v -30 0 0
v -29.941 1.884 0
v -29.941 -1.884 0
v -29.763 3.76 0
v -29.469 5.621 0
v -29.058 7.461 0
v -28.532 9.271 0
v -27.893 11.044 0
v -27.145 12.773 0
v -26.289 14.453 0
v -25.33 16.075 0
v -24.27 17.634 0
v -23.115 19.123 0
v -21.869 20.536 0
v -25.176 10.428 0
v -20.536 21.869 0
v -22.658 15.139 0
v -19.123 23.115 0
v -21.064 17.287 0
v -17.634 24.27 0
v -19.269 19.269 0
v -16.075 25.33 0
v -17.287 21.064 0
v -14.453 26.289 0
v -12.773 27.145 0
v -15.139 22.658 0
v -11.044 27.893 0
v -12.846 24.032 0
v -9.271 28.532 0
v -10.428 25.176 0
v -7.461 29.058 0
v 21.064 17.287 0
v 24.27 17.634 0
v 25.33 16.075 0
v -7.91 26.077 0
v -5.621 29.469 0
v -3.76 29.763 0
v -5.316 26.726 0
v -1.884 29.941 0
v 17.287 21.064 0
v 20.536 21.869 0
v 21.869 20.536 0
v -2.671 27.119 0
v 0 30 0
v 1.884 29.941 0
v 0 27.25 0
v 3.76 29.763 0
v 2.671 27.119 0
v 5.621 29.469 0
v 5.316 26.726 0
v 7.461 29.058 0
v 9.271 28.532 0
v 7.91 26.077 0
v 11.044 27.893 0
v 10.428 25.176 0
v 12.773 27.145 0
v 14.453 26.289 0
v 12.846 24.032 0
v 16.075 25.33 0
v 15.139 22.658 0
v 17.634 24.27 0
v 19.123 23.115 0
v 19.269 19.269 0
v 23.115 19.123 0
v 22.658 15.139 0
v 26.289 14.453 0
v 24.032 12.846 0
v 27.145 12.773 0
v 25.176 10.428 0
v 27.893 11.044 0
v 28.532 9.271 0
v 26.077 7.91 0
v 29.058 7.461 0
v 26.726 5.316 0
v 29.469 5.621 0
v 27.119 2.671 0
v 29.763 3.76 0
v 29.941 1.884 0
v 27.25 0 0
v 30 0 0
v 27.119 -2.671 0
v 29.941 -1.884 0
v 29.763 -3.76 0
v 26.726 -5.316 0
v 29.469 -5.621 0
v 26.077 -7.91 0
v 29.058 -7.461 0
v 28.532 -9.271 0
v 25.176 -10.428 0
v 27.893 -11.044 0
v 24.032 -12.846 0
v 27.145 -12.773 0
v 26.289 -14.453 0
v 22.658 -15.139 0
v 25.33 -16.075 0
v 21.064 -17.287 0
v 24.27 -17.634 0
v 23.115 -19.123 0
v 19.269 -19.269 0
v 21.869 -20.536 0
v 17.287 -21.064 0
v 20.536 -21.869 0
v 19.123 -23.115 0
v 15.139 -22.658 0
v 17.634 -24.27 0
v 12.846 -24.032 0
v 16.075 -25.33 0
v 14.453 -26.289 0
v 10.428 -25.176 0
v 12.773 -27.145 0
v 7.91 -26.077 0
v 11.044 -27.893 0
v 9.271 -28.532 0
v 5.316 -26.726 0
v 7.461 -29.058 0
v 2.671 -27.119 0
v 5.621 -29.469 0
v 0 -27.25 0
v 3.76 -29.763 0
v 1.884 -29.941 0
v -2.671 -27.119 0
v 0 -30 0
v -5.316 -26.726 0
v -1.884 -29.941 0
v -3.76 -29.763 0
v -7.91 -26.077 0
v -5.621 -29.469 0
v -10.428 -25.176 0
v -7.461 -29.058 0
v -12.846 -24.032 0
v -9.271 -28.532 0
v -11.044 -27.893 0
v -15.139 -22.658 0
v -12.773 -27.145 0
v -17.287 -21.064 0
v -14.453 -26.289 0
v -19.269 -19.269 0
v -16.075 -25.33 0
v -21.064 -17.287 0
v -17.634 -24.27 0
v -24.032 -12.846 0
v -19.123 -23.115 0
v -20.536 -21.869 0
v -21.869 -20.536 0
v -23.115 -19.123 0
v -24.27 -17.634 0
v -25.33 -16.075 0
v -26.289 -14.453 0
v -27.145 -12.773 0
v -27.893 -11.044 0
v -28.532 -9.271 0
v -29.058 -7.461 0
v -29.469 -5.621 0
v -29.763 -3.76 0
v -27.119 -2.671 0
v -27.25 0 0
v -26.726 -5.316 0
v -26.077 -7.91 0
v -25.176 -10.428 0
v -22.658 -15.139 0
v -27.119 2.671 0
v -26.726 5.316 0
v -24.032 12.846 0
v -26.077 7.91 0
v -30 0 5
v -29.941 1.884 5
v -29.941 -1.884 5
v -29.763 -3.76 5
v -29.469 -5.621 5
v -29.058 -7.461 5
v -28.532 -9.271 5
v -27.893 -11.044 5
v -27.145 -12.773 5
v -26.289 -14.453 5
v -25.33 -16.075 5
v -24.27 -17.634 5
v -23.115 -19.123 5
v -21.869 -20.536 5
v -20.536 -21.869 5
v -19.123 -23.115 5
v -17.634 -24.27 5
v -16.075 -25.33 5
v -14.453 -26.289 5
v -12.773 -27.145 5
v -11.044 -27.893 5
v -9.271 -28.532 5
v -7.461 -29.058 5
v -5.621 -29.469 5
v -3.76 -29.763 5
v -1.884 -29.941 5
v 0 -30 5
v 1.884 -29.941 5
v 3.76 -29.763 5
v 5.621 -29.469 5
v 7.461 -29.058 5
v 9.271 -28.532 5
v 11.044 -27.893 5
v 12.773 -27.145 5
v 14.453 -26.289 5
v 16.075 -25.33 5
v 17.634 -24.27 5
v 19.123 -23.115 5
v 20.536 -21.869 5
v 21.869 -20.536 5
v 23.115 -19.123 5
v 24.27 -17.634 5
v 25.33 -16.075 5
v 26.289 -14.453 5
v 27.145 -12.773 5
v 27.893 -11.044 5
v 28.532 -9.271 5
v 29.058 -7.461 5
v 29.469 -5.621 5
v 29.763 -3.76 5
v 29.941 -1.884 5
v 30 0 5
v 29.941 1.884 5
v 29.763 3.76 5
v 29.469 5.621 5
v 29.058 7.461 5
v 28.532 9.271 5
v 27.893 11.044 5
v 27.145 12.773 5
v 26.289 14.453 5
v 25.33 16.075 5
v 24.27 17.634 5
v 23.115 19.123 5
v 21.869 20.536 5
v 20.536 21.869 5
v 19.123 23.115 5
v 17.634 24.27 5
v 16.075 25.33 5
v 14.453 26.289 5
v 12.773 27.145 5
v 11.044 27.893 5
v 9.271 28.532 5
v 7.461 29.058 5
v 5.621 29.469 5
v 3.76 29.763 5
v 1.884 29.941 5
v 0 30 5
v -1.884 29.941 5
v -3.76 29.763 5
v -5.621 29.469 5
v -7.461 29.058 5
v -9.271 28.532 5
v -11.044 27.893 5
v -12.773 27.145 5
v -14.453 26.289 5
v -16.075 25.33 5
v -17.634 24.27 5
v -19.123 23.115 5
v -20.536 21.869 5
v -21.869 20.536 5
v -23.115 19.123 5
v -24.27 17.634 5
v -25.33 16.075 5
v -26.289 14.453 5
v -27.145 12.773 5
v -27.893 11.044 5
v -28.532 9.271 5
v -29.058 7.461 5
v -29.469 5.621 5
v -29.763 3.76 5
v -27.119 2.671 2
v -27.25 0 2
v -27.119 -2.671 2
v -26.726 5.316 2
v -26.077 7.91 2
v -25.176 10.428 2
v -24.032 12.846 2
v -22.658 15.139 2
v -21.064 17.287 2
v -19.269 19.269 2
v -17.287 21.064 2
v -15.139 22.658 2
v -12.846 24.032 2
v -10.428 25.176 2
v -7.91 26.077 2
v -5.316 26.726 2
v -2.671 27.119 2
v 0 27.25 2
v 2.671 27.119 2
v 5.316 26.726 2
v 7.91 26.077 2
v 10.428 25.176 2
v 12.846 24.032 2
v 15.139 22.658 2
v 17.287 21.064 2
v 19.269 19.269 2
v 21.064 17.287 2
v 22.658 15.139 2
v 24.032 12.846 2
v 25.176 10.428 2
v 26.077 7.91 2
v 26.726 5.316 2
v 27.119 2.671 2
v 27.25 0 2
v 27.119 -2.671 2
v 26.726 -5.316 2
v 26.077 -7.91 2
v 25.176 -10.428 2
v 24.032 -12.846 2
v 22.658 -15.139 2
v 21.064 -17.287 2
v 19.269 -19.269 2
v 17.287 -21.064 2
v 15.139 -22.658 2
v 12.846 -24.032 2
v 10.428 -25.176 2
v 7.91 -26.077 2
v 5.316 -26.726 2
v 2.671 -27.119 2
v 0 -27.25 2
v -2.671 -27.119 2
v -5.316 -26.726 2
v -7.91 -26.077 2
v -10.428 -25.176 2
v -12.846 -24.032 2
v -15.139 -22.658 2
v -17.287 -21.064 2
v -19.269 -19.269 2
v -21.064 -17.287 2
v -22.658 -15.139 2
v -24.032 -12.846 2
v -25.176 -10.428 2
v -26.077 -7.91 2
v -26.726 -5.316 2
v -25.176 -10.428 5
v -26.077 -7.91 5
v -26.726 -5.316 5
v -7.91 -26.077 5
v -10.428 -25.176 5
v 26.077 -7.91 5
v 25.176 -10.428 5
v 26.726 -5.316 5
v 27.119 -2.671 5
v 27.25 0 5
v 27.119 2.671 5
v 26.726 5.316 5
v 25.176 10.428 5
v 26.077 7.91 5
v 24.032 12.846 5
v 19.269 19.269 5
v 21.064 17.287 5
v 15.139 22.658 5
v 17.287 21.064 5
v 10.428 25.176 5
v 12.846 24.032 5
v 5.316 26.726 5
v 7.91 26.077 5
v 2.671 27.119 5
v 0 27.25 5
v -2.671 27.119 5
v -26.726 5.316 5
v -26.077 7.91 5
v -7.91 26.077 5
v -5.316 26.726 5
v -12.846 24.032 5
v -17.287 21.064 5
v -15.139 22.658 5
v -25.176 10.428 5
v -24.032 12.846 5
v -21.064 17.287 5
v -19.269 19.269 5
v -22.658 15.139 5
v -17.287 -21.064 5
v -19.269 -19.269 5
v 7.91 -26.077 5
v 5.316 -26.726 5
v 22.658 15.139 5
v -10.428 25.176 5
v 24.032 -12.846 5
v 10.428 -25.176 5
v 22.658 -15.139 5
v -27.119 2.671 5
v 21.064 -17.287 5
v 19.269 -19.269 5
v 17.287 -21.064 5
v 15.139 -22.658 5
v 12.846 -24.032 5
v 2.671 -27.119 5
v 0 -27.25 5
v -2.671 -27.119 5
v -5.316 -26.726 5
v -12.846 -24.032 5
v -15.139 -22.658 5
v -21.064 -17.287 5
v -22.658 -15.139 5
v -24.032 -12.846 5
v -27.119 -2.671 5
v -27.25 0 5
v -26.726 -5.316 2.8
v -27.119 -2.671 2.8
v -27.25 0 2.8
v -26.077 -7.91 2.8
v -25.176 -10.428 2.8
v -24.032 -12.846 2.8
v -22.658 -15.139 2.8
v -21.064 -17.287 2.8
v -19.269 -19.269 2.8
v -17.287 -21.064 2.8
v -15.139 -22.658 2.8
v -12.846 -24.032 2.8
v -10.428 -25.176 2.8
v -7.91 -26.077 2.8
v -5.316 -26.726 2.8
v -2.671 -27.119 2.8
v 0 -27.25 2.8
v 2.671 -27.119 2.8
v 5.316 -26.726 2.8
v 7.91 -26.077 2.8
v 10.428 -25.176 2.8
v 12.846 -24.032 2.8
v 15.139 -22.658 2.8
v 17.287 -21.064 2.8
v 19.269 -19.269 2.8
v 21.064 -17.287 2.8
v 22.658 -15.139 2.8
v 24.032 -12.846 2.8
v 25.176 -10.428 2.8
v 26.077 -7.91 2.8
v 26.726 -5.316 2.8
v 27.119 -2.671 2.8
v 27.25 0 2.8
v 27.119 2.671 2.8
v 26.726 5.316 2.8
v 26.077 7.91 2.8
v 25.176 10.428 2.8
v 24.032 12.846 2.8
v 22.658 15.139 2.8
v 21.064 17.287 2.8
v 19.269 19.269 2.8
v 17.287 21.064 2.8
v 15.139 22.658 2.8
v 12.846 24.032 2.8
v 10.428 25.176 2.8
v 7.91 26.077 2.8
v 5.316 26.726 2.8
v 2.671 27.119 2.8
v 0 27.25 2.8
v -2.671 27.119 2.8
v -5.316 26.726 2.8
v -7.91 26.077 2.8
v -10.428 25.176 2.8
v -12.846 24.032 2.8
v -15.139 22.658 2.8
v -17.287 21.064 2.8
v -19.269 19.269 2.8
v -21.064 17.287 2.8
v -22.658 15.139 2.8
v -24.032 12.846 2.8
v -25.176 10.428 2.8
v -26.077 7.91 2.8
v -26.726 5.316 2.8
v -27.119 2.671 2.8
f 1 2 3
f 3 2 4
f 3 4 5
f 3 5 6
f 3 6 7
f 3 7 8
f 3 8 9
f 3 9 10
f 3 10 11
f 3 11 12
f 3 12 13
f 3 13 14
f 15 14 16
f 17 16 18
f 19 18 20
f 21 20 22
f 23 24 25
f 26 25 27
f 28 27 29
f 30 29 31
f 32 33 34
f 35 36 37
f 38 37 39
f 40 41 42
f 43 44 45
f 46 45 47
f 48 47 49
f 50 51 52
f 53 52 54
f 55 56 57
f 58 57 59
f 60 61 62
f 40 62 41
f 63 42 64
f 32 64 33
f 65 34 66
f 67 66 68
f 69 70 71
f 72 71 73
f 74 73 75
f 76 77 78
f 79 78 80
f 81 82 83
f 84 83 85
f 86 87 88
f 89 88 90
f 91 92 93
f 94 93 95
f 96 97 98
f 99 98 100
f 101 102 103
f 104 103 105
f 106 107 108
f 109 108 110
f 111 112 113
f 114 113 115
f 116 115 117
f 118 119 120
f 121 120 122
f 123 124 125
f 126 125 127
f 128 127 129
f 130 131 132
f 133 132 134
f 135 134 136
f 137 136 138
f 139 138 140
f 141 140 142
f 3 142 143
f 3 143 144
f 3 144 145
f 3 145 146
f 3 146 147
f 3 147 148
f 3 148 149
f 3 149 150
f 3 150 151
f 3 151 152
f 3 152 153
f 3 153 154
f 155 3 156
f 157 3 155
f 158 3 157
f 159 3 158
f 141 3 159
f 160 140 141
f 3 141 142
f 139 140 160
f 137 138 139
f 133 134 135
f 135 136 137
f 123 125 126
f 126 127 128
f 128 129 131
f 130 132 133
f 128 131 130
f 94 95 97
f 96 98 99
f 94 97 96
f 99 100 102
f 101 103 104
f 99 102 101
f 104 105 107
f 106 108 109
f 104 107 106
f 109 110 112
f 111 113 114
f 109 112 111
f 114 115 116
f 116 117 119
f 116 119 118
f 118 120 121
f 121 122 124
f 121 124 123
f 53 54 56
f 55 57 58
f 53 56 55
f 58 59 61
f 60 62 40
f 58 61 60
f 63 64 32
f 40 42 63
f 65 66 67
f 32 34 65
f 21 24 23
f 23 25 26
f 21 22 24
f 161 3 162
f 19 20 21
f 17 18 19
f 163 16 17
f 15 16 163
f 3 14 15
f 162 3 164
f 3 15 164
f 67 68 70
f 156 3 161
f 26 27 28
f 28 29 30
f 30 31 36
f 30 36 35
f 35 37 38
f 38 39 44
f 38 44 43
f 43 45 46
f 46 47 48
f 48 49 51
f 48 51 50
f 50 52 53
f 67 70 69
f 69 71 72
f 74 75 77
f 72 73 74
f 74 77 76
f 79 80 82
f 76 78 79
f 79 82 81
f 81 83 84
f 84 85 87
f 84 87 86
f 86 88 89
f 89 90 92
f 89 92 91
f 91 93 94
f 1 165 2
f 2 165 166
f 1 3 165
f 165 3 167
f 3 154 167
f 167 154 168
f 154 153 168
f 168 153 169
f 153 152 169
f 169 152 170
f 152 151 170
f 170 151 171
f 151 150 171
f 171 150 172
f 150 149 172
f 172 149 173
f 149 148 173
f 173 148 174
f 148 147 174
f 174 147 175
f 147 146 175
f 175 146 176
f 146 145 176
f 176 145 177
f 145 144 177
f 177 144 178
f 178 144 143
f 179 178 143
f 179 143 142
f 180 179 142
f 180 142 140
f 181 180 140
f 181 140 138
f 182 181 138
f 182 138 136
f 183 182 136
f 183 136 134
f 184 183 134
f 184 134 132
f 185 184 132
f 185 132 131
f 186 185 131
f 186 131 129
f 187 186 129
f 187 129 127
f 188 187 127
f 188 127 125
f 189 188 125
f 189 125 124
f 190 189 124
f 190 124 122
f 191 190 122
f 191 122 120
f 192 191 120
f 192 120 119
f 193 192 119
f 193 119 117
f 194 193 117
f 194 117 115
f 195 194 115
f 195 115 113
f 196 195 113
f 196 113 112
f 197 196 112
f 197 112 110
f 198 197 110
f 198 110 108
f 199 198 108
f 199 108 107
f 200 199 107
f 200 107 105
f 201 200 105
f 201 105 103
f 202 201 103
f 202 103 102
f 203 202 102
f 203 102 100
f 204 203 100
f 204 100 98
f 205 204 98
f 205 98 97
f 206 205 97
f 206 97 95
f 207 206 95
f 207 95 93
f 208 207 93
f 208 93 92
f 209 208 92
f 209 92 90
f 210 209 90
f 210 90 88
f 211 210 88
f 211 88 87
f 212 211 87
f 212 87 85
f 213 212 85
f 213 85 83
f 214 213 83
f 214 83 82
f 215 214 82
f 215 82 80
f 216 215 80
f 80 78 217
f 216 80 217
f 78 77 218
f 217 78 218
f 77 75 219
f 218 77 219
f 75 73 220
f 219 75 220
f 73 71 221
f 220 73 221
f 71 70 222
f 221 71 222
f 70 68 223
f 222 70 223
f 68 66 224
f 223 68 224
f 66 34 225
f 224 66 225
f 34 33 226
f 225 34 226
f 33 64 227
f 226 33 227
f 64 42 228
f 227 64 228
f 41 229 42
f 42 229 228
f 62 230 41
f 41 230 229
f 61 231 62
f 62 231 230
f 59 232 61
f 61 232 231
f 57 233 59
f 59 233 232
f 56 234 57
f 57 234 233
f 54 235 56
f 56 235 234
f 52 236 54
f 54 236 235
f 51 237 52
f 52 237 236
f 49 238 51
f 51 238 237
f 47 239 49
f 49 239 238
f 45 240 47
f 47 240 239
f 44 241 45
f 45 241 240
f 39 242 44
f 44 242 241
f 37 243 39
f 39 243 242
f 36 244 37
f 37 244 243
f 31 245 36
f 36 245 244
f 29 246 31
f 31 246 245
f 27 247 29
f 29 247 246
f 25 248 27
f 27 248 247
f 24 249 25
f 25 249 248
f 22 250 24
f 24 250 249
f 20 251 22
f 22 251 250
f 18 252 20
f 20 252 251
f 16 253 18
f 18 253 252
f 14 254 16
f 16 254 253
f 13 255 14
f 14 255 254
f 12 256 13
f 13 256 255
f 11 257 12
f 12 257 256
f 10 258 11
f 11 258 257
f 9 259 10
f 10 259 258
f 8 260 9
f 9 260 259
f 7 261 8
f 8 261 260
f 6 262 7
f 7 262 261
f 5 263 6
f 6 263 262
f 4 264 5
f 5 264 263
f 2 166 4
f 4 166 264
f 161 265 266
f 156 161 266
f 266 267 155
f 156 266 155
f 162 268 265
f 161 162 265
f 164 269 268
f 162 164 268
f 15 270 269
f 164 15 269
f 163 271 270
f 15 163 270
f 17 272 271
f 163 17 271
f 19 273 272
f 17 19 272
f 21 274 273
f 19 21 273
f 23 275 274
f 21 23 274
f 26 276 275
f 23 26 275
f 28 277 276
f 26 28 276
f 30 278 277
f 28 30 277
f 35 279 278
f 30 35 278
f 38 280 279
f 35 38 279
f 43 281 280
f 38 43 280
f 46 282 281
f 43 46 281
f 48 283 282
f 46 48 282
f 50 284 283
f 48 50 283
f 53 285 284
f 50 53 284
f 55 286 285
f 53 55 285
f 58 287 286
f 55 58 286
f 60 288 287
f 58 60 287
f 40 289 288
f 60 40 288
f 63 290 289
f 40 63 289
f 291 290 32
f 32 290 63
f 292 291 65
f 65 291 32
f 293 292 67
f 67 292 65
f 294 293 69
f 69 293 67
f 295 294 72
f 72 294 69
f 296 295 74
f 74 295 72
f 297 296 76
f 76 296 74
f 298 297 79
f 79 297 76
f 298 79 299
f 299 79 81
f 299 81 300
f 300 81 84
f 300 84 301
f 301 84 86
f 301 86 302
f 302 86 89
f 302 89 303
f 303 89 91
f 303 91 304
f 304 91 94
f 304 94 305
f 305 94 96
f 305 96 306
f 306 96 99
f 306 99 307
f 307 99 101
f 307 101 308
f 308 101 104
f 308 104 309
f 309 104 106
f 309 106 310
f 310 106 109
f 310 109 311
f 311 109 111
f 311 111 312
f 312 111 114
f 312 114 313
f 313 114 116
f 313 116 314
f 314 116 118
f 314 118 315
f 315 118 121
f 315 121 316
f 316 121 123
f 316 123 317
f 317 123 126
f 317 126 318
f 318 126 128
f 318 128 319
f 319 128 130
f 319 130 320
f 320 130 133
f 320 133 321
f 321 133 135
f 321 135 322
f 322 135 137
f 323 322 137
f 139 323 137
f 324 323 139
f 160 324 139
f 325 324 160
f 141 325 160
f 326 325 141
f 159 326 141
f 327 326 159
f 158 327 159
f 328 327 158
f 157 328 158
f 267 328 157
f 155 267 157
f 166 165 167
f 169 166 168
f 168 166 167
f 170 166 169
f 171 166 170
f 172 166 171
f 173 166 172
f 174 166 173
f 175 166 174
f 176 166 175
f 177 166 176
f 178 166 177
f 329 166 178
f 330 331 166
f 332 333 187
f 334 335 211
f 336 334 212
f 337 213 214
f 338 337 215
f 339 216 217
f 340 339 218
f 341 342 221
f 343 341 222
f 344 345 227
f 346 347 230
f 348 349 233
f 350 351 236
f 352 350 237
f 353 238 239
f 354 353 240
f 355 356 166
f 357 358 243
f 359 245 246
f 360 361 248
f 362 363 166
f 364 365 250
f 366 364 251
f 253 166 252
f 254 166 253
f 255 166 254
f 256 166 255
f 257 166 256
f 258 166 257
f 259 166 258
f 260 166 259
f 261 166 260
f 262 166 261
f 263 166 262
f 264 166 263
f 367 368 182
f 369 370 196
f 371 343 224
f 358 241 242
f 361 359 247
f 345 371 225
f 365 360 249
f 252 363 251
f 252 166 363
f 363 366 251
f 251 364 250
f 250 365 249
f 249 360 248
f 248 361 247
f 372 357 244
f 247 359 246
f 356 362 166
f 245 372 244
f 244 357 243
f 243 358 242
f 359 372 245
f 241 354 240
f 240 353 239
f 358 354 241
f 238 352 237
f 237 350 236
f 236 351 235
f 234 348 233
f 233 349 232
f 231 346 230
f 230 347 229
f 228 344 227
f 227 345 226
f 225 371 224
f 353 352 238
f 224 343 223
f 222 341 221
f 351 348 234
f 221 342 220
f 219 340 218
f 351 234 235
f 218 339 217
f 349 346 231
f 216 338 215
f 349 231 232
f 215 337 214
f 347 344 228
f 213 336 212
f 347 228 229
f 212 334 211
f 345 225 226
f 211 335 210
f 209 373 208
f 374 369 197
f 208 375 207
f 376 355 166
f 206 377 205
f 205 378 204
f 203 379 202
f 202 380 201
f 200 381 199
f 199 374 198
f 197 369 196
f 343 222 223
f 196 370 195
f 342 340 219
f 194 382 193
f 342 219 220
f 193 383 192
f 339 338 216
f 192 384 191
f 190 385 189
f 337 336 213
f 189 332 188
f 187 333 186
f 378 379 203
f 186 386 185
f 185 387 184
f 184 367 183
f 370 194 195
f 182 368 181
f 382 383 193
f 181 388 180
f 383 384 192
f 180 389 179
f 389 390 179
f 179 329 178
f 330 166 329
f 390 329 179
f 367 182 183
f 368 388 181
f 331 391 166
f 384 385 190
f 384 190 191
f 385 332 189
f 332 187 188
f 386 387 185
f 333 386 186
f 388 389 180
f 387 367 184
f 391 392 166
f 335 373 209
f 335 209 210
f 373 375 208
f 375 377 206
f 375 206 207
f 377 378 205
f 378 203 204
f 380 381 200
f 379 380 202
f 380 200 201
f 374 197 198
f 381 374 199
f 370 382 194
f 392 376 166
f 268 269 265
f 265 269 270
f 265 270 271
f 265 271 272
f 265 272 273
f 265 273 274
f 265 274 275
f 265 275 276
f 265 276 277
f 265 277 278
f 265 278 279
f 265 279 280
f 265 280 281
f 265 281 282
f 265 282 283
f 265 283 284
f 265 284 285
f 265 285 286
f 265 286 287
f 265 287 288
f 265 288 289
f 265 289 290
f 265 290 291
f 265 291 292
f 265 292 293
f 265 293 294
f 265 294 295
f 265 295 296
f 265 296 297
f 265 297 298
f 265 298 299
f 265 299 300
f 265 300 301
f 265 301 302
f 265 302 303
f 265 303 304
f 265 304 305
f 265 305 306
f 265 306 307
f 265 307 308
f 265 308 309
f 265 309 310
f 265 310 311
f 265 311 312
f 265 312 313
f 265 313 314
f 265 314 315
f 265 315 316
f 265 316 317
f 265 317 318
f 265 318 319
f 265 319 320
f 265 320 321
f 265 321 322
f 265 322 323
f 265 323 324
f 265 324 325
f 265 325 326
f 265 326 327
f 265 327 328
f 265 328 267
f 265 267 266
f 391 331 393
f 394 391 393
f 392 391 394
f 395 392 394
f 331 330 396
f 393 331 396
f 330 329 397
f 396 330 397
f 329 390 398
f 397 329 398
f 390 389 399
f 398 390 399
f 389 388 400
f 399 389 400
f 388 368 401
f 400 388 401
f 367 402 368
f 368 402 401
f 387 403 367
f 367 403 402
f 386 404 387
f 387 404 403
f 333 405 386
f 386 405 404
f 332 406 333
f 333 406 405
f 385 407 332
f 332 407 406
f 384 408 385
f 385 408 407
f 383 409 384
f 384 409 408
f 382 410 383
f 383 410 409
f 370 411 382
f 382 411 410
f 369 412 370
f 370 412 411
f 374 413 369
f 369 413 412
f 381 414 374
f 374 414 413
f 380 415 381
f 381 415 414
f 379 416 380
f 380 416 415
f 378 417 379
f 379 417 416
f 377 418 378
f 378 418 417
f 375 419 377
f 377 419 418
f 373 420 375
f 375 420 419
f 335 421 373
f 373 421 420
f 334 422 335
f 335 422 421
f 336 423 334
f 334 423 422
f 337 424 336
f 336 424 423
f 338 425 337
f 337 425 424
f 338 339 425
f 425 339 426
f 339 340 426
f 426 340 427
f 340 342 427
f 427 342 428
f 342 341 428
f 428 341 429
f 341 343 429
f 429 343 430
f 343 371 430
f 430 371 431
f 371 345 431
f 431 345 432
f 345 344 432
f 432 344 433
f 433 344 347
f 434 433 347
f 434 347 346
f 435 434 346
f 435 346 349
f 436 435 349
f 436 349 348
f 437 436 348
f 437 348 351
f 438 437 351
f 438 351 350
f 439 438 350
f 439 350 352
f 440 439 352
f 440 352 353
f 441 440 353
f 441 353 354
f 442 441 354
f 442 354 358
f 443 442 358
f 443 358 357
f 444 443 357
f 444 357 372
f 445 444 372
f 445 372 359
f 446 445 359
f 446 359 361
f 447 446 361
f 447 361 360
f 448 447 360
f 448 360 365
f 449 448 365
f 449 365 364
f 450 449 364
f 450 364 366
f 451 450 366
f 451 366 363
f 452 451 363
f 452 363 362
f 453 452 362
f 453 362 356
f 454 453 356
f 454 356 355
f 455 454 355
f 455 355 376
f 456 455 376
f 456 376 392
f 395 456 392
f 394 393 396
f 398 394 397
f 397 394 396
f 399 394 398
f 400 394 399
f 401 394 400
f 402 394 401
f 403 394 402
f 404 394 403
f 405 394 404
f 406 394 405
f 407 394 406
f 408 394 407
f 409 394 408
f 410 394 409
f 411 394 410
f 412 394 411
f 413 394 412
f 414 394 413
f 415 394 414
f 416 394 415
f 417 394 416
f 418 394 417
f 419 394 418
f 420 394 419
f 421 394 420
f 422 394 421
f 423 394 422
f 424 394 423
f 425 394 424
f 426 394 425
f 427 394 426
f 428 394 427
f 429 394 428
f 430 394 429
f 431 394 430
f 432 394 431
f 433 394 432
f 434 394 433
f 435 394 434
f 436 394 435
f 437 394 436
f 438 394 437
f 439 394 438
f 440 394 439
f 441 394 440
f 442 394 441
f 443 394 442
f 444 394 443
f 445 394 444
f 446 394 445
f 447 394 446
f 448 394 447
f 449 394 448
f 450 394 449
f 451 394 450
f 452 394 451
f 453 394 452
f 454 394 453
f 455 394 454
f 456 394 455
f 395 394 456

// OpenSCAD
// AIR HOCKEY ROBOT PROJECT (AHROBOT)
// 
// by Jose Julio

// PUCK


// PUCK v2 (lighter version)
difference()
{
cylinder(r=30,h=5,center=false,$fn=100);
translate([0,0,-1]) cylinder(r=27.25,h=3,center=false,$fn=64);
translate([0,0,2.8]) cylinder(r=27.25,h=10,center=false,$fn=64);
}


/*
// PUSHER
difference()
{
cylinder(r=40,h=18,center=false,$fn=100);
translate([0,0,10]) cylinder(r=35,h=20,center=false,$fn=64);
}
cylinder(r=20,h=40,center=false,$fn=50);
translate([0,0,40]) sphere(r=20,$fn=50);
*/
